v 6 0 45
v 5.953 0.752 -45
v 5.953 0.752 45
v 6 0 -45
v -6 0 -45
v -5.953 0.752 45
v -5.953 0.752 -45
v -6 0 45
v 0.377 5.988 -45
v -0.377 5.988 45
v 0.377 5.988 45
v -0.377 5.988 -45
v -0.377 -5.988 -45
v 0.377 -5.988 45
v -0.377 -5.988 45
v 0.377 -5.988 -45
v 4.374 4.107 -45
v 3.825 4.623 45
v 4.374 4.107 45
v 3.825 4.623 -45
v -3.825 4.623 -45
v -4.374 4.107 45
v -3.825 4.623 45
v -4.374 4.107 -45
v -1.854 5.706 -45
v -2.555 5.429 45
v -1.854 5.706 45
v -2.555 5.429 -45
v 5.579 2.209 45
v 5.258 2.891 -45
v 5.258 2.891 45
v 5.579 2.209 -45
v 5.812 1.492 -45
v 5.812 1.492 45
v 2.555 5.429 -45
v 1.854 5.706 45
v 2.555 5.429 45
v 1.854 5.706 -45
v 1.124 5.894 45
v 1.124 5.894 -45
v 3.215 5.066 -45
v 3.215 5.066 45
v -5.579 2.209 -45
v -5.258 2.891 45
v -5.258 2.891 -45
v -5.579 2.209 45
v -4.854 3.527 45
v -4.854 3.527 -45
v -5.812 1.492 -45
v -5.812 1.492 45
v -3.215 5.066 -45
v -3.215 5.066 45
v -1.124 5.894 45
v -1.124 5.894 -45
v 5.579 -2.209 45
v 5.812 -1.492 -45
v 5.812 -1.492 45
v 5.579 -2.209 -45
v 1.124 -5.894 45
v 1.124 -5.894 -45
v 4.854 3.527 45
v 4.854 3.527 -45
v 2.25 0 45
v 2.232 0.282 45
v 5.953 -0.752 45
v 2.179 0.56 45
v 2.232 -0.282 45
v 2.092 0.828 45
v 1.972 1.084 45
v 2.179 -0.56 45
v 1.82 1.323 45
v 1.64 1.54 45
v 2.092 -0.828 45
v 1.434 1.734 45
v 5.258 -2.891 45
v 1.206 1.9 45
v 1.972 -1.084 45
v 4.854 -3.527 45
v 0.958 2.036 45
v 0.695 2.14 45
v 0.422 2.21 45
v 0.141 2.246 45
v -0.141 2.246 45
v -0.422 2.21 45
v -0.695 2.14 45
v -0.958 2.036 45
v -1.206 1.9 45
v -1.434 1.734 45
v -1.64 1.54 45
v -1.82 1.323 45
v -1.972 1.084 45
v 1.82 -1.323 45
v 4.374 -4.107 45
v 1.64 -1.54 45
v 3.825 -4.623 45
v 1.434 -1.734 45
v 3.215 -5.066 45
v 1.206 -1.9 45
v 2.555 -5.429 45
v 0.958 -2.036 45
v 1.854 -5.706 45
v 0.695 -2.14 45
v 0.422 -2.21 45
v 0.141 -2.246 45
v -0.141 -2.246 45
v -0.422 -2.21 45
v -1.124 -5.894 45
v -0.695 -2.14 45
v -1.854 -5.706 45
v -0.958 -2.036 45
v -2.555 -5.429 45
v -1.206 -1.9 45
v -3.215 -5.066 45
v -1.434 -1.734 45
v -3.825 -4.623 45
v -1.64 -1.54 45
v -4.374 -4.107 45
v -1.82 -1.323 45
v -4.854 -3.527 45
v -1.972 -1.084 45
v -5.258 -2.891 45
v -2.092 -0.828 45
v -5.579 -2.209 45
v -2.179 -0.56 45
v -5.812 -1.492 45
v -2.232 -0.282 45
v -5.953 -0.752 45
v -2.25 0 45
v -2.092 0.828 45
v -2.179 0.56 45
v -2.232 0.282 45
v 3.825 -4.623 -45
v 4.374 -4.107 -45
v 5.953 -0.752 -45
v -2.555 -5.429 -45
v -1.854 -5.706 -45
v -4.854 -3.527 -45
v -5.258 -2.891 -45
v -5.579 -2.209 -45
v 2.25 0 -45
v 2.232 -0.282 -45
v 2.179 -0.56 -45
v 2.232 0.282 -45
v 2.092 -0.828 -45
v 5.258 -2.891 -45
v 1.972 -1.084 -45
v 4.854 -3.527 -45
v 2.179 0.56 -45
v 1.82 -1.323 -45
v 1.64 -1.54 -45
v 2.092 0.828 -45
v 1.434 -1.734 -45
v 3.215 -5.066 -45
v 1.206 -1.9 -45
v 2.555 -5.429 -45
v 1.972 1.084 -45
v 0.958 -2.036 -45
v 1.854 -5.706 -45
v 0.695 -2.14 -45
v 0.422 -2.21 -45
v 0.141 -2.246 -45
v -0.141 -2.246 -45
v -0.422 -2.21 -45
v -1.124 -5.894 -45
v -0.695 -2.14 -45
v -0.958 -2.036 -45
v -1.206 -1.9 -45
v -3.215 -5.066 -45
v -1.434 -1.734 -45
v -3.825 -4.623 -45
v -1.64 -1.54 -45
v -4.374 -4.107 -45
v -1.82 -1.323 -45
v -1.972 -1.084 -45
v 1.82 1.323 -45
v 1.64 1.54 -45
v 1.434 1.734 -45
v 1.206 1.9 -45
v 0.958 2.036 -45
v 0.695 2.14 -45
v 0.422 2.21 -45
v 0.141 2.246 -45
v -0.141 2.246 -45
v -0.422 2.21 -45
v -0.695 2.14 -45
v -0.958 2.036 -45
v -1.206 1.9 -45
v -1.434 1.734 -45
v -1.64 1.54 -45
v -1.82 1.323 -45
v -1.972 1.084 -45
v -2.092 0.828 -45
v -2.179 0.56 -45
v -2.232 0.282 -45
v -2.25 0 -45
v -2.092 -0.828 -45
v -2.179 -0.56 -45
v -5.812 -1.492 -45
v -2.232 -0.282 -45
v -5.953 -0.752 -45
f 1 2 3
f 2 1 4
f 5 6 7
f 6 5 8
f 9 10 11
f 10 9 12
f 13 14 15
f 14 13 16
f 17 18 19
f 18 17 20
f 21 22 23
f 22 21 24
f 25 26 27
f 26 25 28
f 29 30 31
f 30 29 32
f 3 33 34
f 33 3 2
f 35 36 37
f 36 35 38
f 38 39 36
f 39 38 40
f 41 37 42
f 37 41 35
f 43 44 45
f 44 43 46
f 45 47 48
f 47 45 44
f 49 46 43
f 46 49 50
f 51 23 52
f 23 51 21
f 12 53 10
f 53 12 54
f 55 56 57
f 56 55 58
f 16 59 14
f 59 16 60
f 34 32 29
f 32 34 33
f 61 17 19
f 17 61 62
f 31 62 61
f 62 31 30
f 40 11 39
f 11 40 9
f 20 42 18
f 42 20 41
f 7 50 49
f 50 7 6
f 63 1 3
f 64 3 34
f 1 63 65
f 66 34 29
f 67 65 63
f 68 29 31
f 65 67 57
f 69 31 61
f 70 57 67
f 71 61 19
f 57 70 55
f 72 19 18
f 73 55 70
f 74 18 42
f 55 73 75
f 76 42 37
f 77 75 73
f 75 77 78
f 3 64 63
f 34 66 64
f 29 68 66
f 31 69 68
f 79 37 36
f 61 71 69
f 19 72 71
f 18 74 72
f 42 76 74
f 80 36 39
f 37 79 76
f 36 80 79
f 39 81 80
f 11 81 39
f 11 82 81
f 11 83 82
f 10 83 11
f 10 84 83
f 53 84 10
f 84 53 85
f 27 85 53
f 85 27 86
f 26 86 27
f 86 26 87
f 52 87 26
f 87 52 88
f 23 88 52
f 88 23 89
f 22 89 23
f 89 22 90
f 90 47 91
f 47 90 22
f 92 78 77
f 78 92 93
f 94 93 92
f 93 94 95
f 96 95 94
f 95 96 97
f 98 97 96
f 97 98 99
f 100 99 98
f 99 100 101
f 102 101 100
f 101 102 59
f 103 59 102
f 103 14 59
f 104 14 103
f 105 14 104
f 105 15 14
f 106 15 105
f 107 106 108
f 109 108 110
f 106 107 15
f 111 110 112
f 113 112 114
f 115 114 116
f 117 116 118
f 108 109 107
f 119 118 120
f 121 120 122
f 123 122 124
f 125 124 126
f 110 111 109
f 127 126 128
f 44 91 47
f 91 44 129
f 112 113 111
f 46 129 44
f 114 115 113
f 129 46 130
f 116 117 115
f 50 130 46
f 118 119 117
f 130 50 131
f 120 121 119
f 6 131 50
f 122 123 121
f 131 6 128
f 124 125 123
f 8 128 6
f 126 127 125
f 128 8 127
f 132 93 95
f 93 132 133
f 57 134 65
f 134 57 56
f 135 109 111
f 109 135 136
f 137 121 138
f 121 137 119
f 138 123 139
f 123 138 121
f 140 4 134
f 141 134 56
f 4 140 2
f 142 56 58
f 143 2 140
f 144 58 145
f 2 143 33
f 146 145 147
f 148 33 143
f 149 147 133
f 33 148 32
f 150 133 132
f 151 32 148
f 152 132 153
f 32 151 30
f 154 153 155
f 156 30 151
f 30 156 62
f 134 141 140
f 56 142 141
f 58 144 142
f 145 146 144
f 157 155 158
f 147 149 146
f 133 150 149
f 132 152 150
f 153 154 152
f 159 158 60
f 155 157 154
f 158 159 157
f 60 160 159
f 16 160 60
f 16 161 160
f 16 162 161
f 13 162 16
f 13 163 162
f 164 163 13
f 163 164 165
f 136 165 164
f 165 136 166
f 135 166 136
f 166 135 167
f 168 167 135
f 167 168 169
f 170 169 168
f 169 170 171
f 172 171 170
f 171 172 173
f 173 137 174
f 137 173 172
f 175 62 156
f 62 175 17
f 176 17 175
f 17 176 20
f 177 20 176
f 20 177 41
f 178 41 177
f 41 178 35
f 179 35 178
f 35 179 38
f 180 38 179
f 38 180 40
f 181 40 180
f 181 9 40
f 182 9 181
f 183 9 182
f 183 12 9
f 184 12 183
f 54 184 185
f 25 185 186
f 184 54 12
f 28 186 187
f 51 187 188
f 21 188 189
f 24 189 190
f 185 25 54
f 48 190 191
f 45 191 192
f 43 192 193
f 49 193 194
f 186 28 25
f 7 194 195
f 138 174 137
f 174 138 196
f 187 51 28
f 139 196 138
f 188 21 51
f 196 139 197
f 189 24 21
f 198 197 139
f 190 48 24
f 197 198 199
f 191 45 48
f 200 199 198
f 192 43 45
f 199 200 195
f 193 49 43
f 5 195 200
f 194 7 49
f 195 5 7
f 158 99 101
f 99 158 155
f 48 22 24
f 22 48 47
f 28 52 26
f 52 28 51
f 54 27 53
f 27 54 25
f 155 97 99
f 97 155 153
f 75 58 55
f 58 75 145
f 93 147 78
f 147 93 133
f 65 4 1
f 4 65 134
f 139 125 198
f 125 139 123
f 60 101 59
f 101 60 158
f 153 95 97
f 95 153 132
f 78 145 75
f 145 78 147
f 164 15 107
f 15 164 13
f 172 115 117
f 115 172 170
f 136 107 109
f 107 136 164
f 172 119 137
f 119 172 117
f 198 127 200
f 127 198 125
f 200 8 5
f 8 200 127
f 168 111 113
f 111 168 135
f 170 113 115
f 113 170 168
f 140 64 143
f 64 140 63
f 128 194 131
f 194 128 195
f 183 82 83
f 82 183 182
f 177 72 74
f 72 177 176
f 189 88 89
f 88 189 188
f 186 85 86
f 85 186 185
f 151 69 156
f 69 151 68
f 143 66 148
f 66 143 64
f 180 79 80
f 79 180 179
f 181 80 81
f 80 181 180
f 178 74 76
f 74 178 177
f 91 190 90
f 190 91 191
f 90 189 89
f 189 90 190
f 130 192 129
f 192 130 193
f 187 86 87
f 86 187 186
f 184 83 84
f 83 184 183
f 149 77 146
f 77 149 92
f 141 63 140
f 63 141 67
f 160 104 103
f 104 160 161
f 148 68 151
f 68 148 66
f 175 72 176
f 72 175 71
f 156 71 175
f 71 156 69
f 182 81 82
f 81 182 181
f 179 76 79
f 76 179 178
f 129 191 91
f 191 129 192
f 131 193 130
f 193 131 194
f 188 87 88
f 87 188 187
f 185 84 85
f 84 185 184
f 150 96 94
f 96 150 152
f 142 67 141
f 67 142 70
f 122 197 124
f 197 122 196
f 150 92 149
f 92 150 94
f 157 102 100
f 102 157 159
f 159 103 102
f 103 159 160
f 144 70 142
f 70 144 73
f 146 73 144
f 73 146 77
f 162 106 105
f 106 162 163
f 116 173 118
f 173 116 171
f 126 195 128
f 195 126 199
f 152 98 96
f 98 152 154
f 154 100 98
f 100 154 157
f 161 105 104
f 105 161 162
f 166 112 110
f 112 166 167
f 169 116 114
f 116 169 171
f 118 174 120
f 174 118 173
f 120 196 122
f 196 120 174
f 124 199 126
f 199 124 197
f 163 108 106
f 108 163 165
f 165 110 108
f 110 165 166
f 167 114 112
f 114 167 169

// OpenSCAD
$fn = 50;


difference() {
	union() {
		translate(v = [0, 0, -45.0000000000]) {
			cylinder(h = 90, r = 6.0000000000);
		}
	}
	union() {
		translate(v = [0, 0, -100.0000000000]) {
			cylinder(h = 200, r = 2.2500000000);
		}
	}
}
